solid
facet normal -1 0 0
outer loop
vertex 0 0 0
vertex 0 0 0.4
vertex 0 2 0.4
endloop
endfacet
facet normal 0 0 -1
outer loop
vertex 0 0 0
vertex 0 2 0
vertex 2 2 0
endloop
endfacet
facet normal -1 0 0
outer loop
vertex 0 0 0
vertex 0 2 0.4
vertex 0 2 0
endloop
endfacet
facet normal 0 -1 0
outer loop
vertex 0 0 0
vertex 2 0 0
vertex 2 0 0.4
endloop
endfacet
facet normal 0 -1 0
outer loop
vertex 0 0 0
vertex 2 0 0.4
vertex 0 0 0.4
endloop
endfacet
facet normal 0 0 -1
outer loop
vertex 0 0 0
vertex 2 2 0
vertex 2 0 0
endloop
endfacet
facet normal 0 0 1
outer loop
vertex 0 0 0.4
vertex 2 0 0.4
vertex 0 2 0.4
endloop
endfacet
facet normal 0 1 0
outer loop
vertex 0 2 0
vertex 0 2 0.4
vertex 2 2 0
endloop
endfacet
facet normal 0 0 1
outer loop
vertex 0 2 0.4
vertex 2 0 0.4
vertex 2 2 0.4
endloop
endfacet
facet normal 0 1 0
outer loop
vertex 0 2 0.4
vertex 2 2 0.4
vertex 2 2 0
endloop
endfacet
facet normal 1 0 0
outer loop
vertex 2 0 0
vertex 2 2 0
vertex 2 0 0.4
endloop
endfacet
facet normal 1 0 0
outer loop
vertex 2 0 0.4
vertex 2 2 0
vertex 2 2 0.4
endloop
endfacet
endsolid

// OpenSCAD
/* Warning, this is a very basic generator with a lot of approximation 
input data : [X2SON, X8X, 2x2x0.4mm, 8, , A, C04-00201A]
generated by com.zoubworld.electronics.cad.model3d.Basic
Date : Sun Feb 15 10:50:48 CET 2026
*/

//body
color("black")
translate([0,0,0])
cube([2.0,2.0,0.4], center=false);
